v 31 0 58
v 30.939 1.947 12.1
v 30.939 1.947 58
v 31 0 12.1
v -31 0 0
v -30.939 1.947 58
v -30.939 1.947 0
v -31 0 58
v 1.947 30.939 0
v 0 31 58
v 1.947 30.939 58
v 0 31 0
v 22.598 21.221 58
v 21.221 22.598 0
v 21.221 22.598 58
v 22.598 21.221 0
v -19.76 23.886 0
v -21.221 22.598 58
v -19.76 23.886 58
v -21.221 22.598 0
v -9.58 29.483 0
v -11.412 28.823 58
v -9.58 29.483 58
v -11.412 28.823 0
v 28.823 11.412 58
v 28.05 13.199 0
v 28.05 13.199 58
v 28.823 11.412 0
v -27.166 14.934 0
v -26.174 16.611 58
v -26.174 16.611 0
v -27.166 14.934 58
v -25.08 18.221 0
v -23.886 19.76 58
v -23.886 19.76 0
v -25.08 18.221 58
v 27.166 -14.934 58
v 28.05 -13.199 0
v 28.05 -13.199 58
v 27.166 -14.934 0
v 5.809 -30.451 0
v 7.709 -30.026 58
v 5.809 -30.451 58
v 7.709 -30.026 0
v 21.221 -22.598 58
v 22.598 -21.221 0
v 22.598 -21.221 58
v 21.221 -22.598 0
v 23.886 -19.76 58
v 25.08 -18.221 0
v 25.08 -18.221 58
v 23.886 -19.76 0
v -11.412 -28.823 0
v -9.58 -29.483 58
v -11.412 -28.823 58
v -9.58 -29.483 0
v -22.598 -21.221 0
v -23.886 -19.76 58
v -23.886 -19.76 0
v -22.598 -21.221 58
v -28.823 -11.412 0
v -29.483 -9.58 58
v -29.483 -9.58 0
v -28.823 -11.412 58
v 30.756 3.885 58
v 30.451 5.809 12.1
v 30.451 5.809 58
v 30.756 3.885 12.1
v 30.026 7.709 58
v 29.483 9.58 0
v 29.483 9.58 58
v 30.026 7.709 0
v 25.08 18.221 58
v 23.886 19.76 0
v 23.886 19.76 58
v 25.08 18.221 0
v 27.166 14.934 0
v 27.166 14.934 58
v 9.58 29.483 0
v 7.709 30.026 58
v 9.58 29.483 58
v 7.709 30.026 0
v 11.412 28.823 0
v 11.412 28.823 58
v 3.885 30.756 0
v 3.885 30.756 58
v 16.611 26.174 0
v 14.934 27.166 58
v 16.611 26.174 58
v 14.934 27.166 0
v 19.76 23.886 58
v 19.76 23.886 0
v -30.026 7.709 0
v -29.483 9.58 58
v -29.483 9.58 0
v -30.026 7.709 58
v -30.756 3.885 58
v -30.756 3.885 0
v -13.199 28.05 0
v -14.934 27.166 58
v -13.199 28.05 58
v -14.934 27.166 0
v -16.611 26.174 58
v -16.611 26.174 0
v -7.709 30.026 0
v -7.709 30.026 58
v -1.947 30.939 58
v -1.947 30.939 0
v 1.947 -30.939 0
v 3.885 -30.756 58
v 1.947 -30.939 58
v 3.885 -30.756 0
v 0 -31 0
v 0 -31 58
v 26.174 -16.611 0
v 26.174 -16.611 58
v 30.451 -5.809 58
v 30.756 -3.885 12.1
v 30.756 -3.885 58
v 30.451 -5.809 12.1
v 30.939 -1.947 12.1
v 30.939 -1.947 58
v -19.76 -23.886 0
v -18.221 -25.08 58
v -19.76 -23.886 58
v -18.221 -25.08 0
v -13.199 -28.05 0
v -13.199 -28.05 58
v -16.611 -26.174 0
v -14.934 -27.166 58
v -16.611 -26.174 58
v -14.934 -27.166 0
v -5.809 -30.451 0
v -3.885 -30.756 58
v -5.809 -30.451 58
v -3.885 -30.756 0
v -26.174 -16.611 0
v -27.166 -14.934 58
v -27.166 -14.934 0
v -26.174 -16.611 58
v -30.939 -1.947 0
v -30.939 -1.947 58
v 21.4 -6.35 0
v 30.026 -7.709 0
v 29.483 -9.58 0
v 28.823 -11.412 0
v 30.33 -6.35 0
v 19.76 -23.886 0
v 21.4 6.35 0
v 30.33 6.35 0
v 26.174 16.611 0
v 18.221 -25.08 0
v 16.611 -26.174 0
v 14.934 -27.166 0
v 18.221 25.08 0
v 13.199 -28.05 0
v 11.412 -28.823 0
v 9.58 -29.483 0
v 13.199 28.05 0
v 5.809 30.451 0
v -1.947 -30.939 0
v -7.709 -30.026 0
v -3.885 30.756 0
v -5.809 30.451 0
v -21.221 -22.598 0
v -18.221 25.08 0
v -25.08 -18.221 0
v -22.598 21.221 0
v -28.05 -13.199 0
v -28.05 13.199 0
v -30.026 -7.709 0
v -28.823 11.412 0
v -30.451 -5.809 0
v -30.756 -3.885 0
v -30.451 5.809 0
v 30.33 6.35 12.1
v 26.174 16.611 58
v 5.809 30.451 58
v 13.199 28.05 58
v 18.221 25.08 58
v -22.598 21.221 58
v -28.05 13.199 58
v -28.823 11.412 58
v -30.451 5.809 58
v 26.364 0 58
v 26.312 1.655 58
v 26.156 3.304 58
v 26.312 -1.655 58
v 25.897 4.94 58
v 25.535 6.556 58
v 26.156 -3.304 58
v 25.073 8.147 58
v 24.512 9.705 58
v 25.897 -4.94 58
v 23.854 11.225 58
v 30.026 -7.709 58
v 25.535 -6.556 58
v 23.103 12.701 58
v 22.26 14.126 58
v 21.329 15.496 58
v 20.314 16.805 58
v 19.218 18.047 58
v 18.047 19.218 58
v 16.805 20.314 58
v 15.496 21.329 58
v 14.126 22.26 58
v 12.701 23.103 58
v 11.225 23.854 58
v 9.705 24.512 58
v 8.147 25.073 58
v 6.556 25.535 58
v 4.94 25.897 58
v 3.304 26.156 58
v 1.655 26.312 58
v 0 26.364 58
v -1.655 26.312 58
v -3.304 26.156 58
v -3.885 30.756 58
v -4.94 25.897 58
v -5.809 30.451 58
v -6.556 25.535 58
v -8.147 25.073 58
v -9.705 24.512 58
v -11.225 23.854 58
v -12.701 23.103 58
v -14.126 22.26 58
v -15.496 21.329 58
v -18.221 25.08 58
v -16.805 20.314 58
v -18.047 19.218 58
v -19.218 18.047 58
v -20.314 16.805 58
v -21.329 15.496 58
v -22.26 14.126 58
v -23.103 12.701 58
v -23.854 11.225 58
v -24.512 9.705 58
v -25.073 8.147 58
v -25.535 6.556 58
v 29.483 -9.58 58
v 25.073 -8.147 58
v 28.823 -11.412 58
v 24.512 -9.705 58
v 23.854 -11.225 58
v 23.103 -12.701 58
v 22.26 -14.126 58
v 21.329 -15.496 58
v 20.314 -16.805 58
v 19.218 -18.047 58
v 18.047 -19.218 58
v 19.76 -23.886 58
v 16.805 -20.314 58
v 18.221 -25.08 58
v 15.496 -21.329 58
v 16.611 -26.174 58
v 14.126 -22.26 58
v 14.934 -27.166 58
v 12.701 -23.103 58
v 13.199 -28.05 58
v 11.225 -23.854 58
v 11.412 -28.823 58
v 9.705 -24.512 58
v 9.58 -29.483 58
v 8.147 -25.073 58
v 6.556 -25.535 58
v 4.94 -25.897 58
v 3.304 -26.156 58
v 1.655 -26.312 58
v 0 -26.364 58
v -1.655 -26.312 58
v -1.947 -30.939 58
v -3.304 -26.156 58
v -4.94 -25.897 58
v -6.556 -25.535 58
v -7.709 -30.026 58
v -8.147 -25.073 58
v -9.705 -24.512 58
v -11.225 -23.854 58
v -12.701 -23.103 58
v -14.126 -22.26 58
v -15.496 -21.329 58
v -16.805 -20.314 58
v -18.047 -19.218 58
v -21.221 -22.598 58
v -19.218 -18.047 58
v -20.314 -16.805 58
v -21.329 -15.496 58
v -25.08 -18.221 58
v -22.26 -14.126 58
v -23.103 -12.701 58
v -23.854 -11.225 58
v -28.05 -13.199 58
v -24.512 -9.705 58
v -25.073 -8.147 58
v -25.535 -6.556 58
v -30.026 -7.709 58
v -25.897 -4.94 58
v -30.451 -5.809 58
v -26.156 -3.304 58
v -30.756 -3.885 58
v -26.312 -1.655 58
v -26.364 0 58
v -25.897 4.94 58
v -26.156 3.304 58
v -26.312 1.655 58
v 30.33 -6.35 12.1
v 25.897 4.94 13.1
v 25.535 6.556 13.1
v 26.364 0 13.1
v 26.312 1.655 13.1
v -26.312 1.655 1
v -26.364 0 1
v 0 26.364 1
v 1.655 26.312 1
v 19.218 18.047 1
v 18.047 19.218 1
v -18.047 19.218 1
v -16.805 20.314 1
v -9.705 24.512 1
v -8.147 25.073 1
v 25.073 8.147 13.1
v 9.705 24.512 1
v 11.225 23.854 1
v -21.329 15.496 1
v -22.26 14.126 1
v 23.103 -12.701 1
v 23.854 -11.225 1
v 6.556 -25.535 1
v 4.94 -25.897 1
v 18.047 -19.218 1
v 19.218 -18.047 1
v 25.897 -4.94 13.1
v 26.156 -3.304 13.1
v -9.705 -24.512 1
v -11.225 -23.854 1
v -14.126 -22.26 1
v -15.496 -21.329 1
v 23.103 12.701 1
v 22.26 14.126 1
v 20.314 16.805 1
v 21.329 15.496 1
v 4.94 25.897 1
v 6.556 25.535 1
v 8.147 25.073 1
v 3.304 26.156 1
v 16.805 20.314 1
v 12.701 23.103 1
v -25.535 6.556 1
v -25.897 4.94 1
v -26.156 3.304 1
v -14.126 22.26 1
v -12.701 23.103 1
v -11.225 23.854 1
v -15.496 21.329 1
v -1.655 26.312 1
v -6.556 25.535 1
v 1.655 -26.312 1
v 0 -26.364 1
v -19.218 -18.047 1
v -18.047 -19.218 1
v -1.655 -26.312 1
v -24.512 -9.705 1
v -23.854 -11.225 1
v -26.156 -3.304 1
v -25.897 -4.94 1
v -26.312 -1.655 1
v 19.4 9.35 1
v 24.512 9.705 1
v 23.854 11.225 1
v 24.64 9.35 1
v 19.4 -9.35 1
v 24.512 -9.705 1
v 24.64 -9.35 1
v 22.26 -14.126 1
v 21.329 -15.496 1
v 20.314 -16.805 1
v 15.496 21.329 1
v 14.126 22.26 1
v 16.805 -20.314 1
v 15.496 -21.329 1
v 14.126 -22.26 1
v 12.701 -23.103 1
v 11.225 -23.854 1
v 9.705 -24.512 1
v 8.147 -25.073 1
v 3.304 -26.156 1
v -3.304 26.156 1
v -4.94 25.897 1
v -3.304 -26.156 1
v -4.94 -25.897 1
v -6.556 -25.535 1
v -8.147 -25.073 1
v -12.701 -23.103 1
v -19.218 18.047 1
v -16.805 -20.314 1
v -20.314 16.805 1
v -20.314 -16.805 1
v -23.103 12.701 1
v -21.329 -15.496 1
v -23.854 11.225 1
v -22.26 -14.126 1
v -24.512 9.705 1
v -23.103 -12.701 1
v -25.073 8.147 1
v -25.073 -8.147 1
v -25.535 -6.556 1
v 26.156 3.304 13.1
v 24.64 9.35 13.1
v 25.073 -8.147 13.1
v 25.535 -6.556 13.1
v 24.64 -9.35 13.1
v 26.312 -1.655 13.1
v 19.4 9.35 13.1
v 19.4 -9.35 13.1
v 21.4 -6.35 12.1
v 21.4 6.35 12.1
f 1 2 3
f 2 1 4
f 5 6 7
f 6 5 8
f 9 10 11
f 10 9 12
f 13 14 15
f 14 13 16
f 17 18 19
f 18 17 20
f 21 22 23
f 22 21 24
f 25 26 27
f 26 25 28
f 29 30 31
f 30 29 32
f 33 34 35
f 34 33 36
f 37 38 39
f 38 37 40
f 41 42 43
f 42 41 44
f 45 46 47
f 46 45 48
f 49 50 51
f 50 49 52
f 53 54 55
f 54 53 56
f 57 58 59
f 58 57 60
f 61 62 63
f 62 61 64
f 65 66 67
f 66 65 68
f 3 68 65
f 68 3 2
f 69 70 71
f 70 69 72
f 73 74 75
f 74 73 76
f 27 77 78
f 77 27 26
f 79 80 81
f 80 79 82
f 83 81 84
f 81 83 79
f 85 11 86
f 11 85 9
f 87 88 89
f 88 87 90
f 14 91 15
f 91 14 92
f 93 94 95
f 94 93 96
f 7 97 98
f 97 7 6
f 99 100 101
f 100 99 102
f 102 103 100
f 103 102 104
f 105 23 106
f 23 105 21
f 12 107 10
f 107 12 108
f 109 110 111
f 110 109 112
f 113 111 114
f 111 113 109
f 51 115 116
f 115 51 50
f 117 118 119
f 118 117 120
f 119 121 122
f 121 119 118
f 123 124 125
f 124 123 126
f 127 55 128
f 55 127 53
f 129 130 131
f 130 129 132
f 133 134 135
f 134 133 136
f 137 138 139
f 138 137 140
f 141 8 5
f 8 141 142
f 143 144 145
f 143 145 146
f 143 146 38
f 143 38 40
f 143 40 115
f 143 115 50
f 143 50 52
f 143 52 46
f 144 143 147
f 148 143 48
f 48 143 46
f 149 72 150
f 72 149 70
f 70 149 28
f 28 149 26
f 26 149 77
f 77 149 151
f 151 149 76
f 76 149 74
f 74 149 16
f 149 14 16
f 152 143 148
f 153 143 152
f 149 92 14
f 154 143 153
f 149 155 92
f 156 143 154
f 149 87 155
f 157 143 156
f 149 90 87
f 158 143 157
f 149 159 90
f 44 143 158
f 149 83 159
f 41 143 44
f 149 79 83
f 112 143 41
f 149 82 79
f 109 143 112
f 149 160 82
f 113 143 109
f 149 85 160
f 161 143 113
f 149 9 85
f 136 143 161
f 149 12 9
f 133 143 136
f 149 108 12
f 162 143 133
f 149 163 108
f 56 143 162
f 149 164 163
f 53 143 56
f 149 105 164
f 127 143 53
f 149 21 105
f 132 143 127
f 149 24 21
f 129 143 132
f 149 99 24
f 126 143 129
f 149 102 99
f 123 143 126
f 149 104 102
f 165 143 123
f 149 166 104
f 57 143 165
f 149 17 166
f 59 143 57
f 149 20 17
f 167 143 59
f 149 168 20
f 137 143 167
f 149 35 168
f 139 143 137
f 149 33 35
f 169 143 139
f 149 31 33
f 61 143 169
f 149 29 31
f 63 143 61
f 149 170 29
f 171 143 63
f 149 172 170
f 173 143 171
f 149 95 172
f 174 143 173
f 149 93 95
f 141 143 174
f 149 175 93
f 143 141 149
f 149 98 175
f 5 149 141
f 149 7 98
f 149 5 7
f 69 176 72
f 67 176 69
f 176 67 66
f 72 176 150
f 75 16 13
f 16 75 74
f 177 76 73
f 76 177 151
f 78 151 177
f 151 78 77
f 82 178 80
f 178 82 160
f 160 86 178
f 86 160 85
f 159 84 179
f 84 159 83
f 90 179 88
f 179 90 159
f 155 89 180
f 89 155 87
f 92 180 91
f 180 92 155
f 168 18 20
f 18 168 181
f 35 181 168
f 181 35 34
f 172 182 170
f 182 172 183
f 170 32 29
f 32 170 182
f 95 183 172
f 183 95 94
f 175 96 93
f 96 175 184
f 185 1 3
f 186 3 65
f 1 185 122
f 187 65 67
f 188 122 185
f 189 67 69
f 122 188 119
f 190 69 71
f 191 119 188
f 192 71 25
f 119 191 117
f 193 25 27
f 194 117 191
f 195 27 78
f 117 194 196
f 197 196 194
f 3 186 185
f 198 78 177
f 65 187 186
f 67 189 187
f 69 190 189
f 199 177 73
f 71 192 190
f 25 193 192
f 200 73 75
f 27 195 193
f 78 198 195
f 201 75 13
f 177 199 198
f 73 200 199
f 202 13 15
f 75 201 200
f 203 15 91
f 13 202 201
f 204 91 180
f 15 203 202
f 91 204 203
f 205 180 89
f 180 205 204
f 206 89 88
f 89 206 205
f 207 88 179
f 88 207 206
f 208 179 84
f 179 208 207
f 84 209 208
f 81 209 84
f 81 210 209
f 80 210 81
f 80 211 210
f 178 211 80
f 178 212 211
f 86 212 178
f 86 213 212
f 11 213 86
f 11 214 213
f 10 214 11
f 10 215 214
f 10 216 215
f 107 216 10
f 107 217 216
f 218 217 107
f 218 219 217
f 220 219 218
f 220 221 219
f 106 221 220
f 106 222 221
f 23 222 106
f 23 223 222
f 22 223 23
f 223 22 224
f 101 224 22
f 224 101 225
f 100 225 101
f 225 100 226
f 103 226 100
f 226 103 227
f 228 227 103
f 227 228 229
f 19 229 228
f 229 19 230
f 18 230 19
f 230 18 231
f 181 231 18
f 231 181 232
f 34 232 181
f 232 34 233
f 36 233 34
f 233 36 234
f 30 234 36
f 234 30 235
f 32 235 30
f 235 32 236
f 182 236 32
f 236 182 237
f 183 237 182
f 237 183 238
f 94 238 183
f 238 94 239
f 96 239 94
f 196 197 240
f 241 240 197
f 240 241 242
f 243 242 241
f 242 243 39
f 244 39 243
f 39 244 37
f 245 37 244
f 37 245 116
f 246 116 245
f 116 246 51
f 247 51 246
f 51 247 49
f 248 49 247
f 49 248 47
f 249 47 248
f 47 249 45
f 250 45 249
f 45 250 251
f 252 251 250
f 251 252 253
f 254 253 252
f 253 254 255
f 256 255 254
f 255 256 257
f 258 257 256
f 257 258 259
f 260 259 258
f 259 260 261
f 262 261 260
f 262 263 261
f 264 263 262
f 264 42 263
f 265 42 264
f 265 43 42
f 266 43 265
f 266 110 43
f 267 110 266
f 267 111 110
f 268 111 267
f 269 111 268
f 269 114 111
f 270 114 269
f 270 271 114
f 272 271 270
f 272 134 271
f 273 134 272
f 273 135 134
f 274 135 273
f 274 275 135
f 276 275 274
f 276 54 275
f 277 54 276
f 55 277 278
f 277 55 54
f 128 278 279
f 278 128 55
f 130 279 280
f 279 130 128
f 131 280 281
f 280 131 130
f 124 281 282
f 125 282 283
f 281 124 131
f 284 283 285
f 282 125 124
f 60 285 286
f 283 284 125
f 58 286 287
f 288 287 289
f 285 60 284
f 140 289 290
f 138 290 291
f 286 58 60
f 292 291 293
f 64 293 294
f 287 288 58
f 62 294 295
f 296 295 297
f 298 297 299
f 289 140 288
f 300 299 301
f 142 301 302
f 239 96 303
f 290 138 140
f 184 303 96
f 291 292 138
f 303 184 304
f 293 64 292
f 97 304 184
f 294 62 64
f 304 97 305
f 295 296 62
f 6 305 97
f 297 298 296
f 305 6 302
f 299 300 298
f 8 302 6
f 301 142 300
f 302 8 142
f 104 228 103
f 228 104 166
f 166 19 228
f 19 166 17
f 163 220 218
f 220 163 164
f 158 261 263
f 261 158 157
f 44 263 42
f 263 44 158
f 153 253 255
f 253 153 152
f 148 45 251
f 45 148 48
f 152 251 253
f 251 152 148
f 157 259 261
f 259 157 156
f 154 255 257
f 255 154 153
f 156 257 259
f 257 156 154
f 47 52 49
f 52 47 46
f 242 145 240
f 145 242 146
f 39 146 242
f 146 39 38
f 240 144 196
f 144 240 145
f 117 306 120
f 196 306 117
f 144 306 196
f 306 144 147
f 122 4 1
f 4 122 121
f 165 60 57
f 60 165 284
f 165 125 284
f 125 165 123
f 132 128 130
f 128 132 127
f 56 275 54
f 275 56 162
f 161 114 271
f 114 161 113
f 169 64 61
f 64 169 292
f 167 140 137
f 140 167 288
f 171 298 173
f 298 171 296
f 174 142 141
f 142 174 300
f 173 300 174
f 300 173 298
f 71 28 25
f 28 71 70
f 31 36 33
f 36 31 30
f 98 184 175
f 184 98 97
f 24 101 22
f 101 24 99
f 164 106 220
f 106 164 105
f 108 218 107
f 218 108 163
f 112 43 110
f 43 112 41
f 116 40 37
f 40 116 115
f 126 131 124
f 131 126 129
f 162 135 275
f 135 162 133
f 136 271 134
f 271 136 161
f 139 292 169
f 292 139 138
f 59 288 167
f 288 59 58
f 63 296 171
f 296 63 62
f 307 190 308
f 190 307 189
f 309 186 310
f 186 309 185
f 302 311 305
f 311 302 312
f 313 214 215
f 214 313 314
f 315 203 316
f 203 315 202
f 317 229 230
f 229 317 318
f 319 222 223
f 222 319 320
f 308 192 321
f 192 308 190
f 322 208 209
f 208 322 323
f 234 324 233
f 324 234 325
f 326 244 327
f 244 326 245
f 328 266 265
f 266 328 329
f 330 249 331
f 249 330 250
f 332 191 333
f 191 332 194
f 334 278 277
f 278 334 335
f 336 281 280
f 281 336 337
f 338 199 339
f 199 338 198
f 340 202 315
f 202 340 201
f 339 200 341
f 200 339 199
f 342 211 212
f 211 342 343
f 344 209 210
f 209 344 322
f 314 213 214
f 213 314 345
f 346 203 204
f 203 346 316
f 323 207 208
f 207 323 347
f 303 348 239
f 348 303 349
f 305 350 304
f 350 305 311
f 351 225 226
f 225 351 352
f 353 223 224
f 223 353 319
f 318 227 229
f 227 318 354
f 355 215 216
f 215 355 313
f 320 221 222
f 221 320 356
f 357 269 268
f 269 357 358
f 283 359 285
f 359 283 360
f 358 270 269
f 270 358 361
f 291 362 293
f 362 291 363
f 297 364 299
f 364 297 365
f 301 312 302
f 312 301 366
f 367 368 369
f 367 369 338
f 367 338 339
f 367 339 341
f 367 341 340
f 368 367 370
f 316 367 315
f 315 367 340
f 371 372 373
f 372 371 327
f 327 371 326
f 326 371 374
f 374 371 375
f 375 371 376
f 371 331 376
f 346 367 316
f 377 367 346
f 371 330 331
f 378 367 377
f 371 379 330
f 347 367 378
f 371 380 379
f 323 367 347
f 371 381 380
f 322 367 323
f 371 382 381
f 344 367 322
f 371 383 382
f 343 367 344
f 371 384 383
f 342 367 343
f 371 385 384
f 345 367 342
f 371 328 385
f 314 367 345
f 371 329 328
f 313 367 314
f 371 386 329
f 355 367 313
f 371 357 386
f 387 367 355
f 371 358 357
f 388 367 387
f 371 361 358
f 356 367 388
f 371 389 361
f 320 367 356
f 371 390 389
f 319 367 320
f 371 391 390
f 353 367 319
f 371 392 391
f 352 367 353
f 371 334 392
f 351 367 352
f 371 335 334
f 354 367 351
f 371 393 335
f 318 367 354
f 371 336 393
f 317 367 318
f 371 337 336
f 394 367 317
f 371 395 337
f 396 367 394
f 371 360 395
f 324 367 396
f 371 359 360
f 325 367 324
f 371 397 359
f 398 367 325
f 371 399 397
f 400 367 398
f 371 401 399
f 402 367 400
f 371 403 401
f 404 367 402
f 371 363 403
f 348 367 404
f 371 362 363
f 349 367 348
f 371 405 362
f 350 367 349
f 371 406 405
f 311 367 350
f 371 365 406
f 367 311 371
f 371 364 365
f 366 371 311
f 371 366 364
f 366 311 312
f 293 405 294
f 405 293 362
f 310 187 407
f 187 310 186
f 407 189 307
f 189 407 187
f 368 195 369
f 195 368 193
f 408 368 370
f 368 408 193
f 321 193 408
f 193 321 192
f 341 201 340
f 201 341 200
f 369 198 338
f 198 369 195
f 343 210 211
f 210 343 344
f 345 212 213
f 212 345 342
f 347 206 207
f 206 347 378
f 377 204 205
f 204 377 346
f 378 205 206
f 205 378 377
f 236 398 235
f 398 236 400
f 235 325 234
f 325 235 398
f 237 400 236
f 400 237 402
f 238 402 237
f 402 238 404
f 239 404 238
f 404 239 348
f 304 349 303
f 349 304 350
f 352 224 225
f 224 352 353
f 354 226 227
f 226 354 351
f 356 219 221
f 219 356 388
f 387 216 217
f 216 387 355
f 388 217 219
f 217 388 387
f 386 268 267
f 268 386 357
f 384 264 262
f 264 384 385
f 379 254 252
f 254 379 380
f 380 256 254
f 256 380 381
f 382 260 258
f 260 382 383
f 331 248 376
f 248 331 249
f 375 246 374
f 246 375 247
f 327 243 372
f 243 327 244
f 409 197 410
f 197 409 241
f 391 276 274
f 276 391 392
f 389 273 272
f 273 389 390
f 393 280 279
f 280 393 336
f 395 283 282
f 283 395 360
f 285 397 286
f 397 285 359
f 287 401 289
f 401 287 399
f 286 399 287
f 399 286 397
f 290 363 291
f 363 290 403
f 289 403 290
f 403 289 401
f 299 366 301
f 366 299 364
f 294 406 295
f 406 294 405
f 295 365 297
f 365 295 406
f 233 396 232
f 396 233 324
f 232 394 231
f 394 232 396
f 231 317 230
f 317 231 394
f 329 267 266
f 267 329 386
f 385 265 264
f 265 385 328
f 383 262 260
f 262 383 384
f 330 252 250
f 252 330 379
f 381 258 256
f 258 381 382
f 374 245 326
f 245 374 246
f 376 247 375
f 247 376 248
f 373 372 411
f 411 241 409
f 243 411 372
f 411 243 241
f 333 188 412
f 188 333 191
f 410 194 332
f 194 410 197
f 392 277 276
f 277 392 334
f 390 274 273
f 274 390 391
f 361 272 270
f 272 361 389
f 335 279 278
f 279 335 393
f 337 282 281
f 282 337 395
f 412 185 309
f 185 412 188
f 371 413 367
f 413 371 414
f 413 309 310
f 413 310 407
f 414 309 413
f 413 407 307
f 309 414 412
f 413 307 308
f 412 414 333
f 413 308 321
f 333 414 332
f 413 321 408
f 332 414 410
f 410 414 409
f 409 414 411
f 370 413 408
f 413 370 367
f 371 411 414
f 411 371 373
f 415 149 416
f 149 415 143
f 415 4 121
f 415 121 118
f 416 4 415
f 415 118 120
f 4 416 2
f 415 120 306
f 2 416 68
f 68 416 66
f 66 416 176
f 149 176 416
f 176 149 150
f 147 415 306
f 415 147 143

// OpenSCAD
speaker_diameter = 58;
terminal_width = 10.7;
terminal_height = 10.1;
terminal_depth = 7.6;

difference(){
	union(){
		difference(){
			// bottom bounding "box"
			cylinder(r=(speaker_diameter/2)+2,h=speaker_diameter,$fn=100);
			
			// center hole
			translate([0,0,1]){
				cylinder(r=speaker_diameter/2.2,h=speaker_diameter,$fn=100);
			}
		}

		// terminal holder
		translate([(speaker_diameter/2)-(terminal_depth+2),-(terminal_width+8)/2,0]){
			cube([terminal_depth+2, terminal_width+8, terminal_height+3]);
		}
	}

	// terminal hole
	translate([(speaker_diameter/2)-terminal_depth,-(terminal_width+2)/2,-1]){
		#cube([terminal_depth+2, terminal_width+2, terminal_height+3]);
	}
}
